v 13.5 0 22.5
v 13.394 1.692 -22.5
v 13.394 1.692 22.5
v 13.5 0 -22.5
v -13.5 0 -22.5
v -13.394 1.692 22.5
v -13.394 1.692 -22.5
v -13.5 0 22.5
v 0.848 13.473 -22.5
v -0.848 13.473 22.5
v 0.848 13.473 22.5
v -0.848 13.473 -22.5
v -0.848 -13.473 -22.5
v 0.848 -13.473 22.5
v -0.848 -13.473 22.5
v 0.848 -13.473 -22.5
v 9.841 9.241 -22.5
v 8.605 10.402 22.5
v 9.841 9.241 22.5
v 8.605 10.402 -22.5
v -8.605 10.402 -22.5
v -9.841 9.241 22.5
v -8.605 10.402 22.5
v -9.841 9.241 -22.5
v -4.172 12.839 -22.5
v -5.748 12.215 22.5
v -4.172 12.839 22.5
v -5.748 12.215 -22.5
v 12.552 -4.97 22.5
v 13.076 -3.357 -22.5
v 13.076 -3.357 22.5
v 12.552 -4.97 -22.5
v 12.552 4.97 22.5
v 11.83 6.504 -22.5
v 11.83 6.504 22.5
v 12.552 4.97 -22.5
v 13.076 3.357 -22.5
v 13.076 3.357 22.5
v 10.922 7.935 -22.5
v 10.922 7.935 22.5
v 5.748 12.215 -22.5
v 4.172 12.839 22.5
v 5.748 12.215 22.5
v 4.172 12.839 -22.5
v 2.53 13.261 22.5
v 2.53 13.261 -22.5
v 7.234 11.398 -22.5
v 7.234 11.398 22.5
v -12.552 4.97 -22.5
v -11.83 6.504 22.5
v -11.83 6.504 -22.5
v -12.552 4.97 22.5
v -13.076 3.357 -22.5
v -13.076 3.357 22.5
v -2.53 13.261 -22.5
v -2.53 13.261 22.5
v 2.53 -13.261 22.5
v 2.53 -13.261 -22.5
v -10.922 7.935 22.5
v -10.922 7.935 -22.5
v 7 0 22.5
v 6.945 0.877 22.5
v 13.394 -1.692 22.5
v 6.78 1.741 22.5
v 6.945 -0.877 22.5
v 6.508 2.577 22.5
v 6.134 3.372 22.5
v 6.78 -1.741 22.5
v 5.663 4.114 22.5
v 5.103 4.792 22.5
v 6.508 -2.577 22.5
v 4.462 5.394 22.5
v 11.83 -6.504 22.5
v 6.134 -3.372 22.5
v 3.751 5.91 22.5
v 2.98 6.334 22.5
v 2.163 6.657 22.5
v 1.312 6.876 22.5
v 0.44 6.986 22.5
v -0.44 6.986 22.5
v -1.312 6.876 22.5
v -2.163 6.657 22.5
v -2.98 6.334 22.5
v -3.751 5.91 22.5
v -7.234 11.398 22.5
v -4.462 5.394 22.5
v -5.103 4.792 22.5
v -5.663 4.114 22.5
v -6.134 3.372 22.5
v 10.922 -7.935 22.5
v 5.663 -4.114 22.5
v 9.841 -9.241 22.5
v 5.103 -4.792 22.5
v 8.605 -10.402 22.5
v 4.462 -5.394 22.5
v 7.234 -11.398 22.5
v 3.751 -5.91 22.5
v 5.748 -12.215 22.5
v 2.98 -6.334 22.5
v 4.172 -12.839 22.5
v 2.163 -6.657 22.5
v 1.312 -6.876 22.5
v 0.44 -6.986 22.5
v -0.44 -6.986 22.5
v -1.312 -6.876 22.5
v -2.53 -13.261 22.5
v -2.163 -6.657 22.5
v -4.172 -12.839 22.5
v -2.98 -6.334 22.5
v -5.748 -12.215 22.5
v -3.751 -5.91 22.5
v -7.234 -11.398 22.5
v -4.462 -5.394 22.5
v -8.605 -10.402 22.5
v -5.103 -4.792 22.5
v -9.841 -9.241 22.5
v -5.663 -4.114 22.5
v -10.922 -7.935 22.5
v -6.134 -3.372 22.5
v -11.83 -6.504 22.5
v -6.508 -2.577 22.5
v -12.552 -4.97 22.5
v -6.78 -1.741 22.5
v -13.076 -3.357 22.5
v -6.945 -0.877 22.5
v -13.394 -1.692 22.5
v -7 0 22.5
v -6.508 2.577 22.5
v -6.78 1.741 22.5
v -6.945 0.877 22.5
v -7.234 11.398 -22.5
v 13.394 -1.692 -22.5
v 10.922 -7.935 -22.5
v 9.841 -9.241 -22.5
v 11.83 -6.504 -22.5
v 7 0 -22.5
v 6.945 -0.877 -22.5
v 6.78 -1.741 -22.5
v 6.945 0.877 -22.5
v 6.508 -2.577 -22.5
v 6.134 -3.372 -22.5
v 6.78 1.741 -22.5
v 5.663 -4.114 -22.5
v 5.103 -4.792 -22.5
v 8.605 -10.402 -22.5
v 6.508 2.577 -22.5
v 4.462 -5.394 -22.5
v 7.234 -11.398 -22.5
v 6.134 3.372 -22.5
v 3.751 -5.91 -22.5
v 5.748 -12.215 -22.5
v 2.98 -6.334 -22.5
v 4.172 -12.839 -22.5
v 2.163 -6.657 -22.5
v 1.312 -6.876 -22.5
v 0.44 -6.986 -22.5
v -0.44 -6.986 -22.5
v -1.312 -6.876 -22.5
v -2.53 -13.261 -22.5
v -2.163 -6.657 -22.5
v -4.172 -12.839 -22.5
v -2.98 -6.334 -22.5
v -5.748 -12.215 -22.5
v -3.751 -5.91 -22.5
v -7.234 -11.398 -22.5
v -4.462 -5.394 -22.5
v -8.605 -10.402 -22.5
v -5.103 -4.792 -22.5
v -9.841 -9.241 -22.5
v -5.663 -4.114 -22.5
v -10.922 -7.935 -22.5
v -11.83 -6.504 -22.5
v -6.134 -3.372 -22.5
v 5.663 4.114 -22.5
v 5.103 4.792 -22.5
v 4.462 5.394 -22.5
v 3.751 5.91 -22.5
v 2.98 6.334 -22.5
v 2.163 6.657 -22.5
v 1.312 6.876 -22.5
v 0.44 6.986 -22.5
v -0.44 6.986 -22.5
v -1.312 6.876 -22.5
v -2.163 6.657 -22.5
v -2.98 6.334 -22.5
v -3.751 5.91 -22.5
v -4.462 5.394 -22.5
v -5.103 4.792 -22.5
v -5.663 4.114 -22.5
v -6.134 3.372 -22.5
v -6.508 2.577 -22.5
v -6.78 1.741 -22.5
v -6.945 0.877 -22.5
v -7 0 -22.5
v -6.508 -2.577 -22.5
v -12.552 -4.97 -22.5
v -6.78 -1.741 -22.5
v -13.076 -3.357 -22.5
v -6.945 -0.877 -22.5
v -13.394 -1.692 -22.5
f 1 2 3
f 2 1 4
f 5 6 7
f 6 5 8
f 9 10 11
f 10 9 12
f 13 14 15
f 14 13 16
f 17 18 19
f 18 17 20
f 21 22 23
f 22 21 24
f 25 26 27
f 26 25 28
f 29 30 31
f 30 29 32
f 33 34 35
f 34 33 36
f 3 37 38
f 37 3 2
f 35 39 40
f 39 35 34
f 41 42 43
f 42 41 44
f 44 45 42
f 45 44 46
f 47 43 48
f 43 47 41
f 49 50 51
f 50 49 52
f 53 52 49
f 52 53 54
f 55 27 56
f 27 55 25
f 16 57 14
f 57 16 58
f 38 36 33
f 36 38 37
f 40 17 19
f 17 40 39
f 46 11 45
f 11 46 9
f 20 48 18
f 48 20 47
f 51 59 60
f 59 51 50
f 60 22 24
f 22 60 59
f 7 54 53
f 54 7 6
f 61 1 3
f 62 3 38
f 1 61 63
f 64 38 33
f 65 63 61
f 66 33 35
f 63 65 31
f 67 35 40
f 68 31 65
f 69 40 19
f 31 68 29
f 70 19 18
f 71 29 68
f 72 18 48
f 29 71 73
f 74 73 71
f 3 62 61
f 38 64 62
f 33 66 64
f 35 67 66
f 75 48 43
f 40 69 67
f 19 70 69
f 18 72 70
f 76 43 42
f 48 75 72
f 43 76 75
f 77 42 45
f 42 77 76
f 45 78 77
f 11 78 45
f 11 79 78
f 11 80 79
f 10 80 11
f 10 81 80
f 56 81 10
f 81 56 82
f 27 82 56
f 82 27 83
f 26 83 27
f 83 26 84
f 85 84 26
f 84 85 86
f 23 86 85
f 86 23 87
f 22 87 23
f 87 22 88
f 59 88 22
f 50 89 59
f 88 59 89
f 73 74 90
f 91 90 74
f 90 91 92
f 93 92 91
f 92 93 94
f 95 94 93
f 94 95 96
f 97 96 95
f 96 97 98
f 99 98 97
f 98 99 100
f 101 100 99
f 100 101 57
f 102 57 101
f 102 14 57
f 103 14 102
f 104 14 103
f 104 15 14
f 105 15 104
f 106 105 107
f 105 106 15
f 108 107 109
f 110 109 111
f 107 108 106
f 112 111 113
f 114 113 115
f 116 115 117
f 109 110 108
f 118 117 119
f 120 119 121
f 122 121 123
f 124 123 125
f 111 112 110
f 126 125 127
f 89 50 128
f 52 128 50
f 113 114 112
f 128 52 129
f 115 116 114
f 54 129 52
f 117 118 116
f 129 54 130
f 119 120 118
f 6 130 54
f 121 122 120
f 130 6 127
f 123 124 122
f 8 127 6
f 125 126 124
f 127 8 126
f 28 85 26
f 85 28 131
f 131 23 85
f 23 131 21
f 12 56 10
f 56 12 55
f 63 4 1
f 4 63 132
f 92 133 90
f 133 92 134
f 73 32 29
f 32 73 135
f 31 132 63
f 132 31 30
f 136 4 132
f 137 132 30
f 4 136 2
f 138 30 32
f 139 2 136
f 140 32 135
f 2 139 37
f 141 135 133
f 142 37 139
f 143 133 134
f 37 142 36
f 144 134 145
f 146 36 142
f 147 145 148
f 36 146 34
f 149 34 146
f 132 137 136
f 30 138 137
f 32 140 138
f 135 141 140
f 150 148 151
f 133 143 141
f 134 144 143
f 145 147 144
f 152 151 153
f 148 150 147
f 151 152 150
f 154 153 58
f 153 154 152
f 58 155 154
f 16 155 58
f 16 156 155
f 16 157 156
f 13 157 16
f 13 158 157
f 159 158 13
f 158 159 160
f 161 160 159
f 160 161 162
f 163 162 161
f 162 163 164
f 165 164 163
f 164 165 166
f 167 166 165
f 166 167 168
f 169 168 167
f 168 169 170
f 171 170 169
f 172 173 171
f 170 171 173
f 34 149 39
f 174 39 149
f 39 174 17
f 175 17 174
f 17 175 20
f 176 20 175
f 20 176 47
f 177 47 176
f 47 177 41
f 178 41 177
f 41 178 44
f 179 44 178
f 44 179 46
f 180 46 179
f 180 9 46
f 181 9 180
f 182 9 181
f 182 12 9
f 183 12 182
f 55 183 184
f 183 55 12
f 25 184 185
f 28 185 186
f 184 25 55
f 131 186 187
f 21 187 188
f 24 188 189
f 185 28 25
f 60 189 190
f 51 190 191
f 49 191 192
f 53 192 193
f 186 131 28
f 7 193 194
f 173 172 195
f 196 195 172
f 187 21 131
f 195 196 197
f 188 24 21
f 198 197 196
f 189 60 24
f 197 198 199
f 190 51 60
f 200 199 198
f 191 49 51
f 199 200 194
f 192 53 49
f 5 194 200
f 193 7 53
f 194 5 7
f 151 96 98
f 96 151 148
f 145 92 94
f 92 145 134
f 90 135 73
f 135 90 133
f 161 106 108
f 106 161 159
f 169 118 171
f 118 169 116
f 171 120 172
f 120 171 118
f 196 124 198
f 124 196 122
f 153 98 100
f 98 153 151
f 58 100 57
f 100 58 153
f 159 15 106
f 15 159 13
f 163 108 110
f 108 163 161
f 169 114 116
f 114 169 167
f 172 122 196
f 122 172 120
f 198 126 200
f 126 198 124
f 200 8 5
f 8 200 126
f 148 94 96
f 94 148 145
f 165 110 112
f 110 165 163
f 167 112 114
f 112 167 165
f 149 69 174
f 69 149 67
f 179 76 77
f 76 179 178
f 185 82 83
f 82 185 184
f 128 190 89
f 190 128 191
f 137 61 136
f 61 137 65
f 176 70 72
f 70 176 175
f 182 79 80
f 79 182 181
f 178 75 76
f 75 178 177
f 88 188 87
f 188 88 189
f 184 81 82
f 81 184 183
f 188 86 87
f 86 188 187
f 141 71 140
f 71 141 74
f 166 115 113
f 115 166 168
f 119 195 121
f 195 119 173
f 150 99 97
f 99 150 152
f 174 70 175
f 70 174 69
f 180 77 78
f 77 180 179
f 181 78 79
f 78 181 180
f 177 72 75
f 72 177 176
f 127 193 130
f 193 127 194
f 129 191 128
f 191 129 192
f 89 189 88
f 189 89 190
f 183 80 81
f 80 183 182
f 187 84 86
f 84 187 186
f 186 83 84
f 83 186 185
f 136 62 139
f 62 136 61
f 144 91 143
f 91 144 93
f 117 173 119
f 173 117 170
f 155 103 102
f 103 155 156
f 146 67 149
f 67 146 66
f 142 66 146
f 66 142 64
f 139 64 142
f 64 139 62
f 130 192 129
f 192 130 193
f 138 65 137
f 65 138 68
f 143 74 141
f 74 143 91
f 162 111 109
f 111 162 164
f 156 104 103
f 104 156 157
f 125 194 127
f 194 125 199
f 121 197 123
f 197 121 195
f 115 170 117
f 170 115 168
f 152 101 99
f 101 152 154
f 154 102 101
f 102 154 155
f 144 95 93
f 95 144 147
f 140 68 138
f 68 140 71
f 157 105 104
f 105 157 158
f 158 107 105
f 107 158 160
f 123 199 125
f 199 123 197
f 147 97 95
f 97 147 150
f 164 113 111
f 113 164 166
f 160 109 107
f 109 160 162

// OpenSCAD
$fn = 50;


difference() {
	union() {
		translate(v = [0, 0, -22.5000000000]) {
			cylinder(h = 45, r = 13.5000000000);
		}
	}
	union() {
		translate(v = [0, 0, -100.0000000000]) {
			cylinder(h = 200, r = 7);
		}
	}
}
